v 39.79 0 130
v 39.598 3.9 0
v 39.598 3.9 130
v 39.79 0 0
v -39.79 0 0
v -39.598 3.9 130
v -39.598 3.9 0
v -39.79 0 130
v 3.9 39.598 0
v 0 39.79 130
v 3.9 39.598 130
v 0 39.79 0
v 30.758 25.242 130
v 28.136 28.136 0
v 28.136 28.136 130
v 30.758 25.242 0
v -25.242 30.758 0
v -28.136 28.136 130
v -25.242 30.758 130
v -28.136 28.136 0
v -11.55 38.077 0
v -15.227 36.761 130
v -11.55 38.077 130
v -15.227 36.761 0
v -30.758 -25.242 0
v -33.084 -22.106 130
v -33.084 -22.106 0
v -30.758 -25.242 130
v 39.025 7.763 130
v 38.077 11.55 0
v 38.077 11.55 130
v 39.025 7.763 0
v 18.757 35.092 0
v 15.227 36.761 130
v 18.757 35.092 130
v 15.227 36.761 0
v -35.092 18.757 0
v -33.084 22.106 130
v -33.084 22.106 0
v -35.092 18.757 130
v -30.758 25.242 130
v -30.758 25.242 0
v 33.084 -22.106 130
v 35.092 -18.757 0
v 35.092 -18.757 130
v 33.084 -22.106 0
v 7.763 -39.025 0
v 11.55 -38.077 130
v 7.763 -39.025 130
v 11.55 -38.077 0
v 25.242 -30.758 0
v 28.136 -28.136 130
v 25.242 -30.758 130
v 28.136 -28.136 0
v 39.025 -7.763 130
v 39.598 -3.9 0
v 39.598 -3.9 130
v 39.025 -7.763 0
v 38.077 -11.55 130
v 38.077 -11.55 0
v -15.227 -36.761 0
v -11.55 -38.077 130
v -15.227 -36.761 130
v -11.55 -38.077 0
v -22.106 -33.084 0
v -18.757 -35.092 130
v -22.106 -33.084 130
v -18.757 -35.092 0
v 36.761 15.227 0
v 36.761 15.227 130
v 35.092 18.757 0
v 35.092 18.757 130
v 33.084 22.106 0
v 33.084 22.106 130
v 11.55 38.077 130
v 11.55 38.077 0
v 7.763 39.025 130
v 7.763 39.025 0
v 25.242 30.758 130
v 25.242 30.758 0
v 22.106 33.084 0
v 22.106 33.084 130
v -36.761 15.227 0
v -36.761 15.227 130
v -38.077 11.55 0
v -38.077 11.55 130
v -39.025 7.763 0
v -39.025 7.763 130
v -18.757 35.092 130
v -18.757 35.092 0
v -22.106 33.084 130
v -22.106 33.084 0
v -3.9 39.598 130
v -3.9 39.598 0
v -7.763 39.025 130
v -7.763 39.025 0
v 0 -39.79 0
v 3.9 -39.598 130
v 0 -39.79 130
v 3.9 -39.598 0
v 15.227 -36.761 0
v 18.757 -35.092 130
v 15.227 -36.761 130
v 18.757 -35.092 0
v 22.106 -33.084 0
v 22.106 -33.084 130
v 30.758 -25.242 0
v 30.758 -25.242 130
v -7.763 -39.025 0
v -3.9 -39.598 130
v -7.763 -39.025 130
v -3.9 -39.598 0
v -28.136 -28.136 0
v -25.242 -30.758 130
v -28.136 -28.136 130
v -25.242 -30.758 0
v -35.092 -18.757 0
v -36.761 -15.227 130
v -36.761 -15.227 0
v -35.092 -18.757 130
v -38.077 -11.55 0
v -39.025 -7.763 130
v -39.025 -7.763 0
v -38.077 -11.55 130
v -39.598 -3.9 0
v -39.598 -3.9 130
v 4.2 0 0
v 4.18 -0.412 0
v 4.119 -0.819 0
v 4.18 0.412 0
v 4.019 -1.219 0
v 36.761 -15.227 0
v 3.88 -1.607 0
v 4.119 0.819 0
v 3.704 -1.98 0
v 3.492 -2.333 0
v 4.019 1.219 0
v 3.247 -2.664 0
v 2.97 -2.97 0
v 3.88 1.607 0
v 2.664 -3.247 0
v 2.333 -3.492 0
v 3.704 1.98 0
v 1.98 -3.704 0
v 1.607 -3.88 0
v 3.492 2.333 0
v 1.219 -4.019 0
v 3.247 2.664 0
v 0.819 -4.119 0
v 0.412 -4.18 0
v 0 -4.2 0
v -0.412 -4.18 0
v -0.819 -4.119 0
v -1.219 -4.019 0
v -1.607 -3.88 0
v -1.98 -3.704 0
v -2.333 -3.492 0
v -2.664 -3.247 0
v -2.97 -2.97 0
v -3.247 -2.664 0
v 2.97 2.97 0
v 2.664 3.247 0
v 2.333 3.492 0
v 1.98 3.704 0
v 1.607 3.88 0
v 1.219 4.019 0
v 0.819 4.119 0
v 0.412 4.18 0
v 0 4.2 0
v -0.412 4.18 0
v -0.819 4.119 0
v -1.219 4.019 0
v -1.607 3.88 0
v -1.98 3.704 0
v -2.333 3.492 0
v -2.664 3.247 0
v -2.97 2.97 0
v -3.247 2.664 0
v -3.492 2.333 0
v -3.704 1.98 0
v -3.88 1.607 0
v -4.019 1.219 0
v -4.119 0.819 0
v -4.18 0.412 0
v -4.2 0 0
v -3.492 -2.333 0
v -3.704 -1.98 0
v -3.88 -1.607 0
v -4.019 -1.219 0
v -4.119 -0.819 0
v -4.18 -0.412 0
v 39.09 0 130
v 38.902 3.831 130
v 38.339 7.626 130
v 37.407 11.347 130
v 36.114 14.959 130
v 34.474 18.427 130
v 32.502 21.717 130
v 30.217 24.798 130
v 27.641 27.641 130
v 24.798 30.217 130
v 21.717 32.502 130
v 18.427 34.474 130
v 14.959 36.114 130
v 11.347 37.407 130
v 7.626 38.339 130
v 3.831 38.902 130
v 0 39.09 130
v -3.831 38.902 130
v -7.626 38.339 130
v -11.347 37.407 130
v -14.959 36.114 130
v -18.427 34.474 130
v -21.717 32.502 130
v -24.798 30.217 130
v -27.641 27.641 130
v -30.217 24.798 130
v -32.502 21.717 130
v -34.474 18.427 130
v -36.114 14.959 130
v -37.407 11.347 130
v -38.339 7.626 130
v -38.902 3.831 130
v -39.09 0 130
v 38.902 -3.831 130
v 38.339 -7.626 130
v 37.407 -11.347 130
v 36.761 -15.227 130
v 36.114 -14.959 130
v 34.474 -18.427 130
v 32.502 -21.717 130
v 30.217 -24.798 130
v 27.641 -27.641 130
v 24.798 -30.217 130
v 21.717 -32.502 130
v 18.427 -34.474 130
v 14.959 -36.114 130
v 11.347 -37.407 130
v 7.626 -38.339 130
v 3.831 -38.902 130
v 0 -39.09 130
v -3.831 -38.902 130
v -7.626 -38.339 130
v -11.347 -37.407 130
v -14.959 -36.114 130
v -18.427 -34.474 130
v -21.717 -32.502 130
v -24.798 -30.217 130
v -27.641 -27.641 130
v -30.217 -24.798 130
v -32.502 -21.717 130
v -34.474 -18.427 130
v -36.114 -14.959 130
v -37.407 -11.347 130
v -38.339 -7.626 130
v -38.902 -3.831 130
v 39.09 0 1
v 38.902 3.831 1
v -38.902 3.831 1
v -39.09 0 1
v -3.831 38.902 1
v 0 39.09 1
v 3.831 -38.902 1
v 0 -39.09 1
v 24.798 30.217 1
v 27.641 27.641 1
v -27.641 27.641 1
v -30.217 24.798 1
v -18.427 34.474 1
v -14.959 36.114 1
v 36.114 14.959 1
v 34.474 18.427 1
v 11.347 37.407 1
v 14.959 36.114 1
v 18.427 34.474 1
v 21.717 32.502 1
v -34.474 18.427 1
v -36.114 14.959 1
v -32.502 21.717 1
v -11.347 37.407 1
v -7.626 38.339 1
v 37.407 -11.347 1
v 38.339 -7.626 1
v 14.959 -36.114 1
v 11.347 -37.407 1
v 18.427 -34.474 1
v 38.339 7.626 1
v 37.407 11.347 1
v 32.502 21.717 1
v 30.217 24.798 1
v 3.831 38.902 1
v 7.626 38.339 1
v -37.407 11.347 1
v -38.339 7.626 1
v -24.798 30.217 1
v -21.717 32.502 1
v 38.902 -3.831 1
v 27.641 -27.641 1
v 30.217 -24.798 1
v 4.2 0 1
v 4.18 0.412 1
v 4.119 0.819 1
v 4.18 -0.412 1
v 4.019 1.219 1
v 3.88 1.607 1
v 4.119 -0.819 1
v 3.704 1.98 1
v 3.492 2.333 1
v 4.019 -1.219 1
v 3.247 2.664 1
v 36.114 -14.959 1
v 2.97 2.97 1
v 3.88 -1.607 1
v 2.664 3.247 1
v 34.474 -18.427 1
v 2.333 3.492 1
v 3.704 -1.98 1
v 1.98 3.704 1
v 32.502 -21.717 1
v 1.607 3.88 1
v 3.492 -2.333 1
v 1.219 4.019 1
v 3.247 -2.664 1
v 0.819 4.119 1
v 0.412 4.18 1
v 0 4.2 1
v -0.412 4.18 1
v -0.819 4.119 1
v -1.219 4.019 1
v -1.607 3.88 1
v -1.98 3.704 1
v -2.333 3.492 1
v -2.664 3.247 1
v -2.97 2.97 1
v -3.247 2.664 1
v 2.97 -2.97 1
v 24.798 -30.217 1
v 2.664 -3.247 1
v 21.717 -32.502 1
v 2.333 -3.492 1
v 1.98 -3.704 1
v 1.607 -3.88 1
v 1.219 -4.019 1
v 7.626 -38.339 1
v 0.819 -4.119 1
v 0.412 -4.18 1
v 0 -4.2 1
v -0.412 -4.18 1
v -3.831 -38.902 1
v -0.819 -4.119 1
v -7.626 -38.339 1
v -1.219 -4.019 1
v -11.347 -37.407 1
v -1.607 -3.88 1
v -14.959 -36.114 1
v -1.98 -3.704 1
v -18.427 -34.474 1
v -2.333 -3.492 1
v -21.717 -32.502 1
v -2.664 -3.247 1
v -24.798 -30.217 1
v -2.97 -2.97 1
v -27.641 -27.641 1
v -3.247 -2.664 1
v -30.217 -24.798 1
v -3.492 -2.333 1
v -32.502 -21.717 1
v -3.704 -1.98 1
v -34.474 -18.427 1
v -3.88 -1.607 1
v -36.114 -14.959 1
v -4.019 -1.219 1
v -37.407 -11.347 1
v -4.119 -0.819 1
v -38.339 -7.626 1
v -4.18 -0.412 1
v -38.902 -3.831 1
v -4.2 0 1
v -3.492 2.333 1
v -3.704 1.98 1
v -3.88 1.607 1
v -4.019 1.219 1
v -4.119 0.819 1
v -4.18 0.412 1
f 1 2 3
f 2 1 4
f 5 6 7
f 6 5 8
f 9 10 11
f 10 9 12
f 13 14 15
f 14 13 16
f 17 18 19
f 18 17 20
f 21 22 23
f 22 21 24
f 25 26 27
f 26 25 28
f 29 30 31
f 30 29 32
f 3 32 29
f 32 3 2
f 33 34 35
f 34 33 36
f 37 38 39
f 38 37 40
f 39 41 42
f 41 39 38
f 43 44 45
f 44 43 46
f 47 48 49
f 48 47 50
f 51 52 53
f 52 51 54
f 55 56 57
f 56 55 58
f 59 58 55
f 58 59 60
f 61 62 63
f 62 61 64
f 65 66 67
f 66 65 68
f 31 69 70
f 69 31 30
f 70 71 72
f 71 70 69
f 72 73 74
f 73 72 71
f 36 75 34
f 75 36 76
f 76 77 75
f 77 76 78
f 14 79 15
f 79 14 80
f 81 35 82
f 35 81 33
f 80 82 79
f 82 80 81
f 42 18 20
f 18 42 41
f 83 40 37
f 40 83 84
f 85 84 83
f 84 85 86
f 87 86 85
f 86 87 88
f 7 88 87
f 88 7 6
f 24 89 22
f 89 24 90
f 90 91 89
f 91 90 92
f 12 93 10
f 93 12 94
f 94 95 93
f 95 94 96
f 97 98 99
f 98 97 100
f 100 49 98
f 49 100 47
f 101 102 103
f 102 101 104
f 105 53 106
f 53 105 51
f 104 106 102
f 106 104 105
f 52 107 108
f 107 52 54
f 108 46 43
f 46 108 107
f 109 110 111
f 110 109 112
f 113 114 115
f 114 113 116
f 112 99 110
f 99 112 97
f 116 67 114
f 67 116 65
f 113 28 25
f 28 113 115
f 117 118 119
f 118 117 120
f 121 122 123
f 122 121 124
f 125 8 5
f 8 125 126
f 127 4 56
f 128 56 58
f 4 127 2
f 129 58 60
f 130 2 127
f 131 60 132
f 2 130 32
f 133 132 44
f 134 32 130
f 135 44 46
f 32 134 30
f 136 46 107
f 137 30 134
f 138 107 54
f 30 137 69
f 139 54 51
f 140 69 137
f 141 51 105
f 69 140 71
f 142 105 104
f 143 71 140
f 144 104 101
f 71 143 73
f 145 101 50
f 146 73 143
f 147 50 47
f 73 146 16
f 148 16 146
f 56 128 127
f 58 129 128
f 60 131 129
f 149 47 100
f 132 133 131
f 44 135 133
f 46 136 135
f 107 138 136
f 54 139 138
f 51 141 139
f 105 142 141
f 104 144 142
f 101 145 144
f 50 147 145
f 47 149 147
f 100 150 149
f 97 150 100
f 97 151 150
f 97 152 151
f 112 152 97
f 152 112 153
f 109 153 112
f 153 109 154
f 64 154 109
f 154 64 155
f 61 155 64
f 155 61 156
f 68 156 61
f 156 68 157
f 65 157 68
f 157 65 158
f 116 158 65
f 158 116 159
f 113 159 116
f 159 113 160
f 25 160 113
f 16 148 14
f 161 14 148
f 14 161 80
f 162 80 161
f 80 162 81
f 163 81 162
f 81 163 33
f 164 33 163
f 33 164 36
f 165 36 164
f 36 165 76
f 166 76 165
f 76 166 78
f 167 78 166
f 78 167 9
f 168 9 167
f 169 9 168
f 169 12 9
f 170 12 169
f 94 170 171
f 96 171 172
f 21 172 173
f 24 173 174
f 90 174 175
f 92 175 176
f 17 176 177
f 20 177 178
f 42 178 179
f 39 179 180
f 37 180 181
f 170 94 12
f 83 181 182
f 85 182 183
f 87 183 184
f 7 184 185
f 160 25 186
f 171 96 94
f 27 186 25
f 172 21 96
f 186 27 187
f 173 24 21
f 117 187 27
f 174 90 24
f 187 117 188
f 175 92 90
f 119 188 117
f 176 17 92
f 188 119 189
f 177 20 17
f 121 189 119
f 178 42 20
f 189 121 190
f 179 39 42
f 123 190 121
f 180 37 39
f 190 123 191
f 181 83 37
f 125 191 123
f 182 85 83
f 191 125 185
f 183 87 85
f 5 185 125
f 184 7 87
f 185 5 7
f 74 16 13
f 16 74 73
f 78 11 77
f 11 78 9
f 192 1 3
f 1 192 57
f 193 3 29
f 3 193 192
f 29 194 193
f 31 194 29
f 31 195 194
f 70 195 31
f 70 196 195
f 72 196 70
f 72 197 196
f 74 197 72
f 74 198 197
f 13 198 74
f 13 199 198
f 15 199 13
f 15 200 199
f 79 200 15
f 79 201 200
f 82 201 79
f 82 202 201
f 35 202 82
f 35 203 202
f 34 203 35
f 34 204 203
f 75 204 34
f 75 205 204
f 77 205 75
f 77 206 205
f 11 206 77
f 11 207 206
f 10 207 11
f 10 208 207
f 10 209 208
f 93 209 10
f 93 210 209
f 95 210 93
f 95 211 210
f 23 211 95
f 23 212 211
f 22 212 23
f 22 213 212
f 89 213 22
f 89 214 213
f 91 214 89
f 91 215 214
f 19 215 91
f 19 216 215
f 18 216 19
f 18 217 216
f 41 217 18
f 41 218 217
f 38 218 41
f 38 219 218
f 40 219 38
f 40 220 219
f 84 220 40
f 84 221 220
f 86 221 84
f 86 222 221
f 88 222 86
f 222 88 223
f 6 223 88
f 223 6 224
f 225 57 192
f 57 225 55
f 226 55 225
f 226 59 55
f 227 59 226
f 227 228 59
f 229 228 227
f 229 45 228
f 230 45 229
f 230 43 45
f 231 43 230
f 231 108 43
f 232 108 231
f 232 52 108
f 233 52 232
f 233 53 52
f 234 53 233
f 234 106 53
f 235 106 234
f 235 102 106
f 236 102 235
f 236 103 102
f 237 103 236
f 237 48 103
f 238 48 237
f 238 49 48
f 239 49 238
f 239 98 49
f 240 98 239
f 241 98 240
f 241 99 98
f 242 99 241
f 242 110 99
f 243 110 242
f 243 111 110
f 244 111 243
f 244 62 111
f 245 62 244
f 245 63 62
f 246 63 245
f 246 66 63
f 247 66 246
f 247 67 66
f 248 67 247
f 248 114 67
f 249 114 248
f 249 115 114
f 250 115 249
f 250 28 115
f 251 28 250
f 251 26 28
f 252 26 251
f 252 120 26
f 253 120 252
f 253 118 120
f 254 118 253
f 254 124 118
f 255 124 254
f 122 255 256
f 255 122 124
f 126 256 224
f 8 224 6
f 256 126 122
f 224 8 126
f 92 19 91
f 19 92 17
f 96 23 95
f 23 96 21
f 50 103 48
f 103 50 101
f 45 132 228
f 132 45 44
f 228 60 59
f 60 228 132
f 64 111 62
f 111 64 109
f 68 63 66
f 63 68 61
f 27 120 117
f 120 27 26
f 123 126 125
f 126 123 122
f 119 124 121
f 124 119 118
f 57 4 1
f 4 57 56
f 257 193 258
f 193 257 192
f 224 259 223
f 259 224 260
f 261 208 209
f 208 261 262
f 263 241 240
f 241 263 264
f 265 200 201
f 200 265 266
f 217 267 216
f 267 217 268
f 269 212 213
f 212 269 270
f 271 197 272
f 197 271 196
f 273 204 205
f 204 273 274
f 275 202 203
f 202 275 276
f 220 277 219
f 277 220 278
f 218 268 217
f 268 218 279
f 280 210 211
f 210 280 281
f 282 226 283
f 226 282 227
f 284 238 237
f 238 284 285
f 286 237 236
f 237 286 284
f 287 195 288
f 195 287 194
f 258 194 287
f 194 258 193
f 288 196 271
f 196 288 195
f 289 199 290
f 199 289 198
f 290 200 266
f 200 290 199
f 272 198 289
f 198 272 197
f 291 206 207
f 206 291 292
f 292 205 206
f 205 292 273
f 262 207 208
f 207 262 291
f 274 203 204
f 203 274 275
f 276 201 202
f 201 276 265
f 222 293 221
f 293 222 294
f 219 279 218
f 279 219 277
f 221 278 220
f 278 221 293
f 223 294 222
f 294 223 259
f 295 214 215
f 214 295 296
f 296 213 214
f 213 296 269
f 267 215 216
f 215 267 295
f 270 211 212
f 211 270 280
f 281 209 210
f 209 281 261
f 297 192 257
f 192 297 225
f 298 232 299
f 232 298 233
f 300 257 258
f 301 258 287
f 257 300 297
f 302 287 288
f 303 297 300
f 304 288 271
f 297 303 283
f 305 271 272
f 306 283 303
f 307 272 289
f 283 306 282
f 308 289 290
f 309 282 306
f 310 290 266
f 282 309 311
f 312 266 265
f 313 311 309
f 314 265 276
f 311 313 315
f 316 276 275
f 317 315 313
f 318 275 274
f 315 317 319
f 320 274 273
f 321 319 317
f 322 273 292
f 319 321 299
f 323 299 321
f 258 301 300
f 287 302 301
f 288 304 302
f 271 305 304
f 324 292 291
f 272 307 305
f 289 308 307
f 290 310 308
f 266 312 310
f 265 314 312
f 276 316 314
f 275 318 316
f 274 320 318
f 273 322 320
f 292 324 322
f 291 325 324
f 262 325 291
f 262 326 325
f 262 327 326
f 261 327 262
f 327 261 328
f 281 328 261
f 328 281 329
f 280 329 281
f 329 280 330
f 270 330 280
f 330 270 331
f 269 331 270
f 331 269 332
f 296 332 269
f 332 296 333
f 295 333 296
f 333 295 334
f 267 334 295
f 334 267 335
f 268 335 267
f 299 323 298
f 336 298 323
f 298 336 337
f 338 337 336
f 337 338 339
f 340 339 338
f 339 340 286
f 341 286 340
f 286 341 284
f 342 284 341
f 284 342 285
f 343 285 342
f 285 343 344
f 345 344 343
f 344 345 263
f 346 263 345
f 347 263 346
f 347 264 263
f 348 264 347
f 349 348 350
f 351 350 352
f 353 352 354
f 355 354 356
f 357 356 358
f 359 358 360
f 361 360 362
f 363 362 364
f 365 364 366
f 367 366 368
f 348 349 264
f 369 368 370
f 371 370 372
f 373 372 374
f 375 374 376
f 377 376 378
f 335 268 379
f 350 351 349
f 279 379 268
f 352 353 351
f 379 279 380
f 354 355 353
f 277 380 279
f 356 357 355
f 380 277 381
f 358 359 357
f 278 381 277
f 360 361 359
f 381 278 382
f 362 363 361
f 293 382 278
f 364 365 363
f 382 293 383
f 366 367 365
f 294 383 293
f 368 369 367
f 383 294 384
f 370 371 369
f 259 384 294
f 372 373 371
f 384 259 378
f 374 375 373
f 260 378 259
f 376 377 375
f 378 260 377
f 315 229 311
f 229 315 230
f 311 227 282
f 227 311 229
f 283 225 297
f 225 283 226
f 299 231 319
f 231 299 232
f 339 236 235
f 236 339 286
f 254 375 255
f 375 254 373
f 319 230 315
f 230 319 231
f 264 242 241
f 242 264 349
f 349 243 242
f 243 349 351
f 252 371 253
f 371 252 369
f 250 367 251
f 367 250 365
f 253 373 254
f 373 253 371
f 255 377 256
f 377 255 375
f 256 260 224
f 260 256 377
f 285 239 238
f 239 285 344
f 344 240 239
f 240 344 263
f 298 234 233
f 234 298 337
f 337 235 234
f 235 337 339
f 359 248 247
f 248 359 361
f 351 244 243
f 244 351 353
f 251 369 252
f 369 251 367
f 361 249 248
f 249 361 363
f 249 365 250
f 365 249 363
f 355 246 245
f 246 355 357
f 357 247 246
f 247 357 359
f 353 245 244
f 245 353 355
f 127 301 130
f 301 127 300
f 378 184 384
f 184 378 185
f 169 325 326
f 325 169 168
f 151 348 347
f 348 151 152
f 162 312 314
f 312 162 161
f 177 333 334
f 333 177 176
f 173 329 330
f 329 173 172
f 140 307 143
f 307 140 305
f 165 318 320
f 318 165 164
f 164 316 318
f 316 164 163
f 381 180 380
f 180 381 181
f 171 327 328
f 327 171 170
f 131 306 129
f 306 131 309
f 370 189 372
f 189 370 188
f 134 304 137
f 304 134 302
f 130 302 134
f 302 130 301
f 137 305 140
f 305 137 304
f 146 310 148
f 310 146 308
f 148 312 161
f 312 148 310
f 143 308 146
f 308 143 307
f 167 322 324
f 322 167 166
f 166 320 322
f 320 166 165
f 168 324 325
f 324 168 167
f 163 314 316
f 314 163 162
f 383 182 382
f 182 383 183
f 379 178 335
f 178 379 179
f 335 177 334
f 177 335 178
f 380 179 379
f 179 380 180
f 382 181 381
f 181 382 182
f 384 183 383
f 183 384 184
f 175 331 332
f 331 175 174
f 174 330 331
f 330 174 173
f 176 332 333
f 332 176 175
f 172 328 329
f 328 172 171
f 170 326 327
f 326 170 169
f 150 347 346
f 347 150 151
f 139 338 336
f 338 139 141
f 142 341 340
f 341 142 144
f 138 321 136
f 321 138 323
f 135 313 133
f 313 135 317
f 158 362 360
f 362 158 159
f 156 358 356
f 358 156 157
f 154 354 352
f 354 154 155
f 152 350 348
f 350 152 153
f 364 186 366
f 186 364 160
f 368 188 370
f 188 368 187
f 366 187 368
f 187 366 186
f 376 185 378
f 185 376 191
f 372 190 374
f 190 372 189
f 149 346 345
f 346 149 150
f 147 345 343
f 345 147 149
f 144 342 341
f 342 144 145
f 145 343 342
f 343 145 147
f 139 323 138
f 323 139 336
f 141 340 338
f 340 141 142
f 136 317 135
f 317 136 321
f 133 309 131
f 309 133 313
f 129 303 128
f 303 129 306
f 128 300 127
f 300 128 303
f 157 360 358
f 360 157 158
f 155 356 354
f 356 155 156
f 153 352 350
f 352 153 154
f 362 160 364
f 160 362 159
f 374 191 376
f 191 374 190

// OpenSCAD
/*
 * inner-cup.scad
 * 
 * 3D body model for mounting the Pololu LED strip helix.
 * Author: Julian Sanin <sanin89julian@gmail.com>
 * 
 * The MIT License (MIT)
 * 
 * Copyright (c) 2015 Julian Sanin
 * 
 * Permission is hereby granted, free of charge, to any person obtaining a copy
 * of this software and associated documentation files (the "Software"), to deal
 * in the Software without restriction, including without limitation the rights
 * to use, copy, modify, merge, publish, distribute, sublicense, and/or sell
 * copies of the Software, and to permit persons to whom the Software is
 * furnished to do so, subject to the following conditions:
 * 
 * The above copyright notice and this permission notice shall be included in
 * all copies or substantial portions of the Software.
 * 
 * THE SOFTWARE IS PROVIDED "AS IS", WITHOUT WARRANTY OF ANY KIND, EXPRESS OR
 * IMPLIED, INCLUDING BUT NOT LIMITED TO THE WARRANTIES OF MERCHANTABILITY,
 * FITNESS FOR A PARTICULAR PURPOSE AND NONINFRINGEMENT. IN NO EVENT SHALL THE
 * AUTHORS OR COPYRIGHT HOLDERS BE LIABLE FOR ANY CLAIM, DAMAGES OR OTHER
 * LIABILITY, WHETHER IN AN ACTION OF CONTRACT, TORT OR OTHERWISE, ARISING FROM,
 * OUT OF OR IN CONNECTION WITH THE SOFTWARE OR THE USE OR OTHER DEALINGS IN
 * THE SOFTWARE.
 */

diameter=79.58;
holeDiameter=8.4;
height=130;
thickness=0.7;
bottomThickness=1;
difference() {
    cylinder(d=diameter, h=height, $fn=64);
    translate([0,0,bottomThickness]) {
        cylinder(d=diameter-2*thickness, h=height, $fn=64);
    }
    cylinder(d=holeDiameter, h=bottomThickness, $fn=64);
}
